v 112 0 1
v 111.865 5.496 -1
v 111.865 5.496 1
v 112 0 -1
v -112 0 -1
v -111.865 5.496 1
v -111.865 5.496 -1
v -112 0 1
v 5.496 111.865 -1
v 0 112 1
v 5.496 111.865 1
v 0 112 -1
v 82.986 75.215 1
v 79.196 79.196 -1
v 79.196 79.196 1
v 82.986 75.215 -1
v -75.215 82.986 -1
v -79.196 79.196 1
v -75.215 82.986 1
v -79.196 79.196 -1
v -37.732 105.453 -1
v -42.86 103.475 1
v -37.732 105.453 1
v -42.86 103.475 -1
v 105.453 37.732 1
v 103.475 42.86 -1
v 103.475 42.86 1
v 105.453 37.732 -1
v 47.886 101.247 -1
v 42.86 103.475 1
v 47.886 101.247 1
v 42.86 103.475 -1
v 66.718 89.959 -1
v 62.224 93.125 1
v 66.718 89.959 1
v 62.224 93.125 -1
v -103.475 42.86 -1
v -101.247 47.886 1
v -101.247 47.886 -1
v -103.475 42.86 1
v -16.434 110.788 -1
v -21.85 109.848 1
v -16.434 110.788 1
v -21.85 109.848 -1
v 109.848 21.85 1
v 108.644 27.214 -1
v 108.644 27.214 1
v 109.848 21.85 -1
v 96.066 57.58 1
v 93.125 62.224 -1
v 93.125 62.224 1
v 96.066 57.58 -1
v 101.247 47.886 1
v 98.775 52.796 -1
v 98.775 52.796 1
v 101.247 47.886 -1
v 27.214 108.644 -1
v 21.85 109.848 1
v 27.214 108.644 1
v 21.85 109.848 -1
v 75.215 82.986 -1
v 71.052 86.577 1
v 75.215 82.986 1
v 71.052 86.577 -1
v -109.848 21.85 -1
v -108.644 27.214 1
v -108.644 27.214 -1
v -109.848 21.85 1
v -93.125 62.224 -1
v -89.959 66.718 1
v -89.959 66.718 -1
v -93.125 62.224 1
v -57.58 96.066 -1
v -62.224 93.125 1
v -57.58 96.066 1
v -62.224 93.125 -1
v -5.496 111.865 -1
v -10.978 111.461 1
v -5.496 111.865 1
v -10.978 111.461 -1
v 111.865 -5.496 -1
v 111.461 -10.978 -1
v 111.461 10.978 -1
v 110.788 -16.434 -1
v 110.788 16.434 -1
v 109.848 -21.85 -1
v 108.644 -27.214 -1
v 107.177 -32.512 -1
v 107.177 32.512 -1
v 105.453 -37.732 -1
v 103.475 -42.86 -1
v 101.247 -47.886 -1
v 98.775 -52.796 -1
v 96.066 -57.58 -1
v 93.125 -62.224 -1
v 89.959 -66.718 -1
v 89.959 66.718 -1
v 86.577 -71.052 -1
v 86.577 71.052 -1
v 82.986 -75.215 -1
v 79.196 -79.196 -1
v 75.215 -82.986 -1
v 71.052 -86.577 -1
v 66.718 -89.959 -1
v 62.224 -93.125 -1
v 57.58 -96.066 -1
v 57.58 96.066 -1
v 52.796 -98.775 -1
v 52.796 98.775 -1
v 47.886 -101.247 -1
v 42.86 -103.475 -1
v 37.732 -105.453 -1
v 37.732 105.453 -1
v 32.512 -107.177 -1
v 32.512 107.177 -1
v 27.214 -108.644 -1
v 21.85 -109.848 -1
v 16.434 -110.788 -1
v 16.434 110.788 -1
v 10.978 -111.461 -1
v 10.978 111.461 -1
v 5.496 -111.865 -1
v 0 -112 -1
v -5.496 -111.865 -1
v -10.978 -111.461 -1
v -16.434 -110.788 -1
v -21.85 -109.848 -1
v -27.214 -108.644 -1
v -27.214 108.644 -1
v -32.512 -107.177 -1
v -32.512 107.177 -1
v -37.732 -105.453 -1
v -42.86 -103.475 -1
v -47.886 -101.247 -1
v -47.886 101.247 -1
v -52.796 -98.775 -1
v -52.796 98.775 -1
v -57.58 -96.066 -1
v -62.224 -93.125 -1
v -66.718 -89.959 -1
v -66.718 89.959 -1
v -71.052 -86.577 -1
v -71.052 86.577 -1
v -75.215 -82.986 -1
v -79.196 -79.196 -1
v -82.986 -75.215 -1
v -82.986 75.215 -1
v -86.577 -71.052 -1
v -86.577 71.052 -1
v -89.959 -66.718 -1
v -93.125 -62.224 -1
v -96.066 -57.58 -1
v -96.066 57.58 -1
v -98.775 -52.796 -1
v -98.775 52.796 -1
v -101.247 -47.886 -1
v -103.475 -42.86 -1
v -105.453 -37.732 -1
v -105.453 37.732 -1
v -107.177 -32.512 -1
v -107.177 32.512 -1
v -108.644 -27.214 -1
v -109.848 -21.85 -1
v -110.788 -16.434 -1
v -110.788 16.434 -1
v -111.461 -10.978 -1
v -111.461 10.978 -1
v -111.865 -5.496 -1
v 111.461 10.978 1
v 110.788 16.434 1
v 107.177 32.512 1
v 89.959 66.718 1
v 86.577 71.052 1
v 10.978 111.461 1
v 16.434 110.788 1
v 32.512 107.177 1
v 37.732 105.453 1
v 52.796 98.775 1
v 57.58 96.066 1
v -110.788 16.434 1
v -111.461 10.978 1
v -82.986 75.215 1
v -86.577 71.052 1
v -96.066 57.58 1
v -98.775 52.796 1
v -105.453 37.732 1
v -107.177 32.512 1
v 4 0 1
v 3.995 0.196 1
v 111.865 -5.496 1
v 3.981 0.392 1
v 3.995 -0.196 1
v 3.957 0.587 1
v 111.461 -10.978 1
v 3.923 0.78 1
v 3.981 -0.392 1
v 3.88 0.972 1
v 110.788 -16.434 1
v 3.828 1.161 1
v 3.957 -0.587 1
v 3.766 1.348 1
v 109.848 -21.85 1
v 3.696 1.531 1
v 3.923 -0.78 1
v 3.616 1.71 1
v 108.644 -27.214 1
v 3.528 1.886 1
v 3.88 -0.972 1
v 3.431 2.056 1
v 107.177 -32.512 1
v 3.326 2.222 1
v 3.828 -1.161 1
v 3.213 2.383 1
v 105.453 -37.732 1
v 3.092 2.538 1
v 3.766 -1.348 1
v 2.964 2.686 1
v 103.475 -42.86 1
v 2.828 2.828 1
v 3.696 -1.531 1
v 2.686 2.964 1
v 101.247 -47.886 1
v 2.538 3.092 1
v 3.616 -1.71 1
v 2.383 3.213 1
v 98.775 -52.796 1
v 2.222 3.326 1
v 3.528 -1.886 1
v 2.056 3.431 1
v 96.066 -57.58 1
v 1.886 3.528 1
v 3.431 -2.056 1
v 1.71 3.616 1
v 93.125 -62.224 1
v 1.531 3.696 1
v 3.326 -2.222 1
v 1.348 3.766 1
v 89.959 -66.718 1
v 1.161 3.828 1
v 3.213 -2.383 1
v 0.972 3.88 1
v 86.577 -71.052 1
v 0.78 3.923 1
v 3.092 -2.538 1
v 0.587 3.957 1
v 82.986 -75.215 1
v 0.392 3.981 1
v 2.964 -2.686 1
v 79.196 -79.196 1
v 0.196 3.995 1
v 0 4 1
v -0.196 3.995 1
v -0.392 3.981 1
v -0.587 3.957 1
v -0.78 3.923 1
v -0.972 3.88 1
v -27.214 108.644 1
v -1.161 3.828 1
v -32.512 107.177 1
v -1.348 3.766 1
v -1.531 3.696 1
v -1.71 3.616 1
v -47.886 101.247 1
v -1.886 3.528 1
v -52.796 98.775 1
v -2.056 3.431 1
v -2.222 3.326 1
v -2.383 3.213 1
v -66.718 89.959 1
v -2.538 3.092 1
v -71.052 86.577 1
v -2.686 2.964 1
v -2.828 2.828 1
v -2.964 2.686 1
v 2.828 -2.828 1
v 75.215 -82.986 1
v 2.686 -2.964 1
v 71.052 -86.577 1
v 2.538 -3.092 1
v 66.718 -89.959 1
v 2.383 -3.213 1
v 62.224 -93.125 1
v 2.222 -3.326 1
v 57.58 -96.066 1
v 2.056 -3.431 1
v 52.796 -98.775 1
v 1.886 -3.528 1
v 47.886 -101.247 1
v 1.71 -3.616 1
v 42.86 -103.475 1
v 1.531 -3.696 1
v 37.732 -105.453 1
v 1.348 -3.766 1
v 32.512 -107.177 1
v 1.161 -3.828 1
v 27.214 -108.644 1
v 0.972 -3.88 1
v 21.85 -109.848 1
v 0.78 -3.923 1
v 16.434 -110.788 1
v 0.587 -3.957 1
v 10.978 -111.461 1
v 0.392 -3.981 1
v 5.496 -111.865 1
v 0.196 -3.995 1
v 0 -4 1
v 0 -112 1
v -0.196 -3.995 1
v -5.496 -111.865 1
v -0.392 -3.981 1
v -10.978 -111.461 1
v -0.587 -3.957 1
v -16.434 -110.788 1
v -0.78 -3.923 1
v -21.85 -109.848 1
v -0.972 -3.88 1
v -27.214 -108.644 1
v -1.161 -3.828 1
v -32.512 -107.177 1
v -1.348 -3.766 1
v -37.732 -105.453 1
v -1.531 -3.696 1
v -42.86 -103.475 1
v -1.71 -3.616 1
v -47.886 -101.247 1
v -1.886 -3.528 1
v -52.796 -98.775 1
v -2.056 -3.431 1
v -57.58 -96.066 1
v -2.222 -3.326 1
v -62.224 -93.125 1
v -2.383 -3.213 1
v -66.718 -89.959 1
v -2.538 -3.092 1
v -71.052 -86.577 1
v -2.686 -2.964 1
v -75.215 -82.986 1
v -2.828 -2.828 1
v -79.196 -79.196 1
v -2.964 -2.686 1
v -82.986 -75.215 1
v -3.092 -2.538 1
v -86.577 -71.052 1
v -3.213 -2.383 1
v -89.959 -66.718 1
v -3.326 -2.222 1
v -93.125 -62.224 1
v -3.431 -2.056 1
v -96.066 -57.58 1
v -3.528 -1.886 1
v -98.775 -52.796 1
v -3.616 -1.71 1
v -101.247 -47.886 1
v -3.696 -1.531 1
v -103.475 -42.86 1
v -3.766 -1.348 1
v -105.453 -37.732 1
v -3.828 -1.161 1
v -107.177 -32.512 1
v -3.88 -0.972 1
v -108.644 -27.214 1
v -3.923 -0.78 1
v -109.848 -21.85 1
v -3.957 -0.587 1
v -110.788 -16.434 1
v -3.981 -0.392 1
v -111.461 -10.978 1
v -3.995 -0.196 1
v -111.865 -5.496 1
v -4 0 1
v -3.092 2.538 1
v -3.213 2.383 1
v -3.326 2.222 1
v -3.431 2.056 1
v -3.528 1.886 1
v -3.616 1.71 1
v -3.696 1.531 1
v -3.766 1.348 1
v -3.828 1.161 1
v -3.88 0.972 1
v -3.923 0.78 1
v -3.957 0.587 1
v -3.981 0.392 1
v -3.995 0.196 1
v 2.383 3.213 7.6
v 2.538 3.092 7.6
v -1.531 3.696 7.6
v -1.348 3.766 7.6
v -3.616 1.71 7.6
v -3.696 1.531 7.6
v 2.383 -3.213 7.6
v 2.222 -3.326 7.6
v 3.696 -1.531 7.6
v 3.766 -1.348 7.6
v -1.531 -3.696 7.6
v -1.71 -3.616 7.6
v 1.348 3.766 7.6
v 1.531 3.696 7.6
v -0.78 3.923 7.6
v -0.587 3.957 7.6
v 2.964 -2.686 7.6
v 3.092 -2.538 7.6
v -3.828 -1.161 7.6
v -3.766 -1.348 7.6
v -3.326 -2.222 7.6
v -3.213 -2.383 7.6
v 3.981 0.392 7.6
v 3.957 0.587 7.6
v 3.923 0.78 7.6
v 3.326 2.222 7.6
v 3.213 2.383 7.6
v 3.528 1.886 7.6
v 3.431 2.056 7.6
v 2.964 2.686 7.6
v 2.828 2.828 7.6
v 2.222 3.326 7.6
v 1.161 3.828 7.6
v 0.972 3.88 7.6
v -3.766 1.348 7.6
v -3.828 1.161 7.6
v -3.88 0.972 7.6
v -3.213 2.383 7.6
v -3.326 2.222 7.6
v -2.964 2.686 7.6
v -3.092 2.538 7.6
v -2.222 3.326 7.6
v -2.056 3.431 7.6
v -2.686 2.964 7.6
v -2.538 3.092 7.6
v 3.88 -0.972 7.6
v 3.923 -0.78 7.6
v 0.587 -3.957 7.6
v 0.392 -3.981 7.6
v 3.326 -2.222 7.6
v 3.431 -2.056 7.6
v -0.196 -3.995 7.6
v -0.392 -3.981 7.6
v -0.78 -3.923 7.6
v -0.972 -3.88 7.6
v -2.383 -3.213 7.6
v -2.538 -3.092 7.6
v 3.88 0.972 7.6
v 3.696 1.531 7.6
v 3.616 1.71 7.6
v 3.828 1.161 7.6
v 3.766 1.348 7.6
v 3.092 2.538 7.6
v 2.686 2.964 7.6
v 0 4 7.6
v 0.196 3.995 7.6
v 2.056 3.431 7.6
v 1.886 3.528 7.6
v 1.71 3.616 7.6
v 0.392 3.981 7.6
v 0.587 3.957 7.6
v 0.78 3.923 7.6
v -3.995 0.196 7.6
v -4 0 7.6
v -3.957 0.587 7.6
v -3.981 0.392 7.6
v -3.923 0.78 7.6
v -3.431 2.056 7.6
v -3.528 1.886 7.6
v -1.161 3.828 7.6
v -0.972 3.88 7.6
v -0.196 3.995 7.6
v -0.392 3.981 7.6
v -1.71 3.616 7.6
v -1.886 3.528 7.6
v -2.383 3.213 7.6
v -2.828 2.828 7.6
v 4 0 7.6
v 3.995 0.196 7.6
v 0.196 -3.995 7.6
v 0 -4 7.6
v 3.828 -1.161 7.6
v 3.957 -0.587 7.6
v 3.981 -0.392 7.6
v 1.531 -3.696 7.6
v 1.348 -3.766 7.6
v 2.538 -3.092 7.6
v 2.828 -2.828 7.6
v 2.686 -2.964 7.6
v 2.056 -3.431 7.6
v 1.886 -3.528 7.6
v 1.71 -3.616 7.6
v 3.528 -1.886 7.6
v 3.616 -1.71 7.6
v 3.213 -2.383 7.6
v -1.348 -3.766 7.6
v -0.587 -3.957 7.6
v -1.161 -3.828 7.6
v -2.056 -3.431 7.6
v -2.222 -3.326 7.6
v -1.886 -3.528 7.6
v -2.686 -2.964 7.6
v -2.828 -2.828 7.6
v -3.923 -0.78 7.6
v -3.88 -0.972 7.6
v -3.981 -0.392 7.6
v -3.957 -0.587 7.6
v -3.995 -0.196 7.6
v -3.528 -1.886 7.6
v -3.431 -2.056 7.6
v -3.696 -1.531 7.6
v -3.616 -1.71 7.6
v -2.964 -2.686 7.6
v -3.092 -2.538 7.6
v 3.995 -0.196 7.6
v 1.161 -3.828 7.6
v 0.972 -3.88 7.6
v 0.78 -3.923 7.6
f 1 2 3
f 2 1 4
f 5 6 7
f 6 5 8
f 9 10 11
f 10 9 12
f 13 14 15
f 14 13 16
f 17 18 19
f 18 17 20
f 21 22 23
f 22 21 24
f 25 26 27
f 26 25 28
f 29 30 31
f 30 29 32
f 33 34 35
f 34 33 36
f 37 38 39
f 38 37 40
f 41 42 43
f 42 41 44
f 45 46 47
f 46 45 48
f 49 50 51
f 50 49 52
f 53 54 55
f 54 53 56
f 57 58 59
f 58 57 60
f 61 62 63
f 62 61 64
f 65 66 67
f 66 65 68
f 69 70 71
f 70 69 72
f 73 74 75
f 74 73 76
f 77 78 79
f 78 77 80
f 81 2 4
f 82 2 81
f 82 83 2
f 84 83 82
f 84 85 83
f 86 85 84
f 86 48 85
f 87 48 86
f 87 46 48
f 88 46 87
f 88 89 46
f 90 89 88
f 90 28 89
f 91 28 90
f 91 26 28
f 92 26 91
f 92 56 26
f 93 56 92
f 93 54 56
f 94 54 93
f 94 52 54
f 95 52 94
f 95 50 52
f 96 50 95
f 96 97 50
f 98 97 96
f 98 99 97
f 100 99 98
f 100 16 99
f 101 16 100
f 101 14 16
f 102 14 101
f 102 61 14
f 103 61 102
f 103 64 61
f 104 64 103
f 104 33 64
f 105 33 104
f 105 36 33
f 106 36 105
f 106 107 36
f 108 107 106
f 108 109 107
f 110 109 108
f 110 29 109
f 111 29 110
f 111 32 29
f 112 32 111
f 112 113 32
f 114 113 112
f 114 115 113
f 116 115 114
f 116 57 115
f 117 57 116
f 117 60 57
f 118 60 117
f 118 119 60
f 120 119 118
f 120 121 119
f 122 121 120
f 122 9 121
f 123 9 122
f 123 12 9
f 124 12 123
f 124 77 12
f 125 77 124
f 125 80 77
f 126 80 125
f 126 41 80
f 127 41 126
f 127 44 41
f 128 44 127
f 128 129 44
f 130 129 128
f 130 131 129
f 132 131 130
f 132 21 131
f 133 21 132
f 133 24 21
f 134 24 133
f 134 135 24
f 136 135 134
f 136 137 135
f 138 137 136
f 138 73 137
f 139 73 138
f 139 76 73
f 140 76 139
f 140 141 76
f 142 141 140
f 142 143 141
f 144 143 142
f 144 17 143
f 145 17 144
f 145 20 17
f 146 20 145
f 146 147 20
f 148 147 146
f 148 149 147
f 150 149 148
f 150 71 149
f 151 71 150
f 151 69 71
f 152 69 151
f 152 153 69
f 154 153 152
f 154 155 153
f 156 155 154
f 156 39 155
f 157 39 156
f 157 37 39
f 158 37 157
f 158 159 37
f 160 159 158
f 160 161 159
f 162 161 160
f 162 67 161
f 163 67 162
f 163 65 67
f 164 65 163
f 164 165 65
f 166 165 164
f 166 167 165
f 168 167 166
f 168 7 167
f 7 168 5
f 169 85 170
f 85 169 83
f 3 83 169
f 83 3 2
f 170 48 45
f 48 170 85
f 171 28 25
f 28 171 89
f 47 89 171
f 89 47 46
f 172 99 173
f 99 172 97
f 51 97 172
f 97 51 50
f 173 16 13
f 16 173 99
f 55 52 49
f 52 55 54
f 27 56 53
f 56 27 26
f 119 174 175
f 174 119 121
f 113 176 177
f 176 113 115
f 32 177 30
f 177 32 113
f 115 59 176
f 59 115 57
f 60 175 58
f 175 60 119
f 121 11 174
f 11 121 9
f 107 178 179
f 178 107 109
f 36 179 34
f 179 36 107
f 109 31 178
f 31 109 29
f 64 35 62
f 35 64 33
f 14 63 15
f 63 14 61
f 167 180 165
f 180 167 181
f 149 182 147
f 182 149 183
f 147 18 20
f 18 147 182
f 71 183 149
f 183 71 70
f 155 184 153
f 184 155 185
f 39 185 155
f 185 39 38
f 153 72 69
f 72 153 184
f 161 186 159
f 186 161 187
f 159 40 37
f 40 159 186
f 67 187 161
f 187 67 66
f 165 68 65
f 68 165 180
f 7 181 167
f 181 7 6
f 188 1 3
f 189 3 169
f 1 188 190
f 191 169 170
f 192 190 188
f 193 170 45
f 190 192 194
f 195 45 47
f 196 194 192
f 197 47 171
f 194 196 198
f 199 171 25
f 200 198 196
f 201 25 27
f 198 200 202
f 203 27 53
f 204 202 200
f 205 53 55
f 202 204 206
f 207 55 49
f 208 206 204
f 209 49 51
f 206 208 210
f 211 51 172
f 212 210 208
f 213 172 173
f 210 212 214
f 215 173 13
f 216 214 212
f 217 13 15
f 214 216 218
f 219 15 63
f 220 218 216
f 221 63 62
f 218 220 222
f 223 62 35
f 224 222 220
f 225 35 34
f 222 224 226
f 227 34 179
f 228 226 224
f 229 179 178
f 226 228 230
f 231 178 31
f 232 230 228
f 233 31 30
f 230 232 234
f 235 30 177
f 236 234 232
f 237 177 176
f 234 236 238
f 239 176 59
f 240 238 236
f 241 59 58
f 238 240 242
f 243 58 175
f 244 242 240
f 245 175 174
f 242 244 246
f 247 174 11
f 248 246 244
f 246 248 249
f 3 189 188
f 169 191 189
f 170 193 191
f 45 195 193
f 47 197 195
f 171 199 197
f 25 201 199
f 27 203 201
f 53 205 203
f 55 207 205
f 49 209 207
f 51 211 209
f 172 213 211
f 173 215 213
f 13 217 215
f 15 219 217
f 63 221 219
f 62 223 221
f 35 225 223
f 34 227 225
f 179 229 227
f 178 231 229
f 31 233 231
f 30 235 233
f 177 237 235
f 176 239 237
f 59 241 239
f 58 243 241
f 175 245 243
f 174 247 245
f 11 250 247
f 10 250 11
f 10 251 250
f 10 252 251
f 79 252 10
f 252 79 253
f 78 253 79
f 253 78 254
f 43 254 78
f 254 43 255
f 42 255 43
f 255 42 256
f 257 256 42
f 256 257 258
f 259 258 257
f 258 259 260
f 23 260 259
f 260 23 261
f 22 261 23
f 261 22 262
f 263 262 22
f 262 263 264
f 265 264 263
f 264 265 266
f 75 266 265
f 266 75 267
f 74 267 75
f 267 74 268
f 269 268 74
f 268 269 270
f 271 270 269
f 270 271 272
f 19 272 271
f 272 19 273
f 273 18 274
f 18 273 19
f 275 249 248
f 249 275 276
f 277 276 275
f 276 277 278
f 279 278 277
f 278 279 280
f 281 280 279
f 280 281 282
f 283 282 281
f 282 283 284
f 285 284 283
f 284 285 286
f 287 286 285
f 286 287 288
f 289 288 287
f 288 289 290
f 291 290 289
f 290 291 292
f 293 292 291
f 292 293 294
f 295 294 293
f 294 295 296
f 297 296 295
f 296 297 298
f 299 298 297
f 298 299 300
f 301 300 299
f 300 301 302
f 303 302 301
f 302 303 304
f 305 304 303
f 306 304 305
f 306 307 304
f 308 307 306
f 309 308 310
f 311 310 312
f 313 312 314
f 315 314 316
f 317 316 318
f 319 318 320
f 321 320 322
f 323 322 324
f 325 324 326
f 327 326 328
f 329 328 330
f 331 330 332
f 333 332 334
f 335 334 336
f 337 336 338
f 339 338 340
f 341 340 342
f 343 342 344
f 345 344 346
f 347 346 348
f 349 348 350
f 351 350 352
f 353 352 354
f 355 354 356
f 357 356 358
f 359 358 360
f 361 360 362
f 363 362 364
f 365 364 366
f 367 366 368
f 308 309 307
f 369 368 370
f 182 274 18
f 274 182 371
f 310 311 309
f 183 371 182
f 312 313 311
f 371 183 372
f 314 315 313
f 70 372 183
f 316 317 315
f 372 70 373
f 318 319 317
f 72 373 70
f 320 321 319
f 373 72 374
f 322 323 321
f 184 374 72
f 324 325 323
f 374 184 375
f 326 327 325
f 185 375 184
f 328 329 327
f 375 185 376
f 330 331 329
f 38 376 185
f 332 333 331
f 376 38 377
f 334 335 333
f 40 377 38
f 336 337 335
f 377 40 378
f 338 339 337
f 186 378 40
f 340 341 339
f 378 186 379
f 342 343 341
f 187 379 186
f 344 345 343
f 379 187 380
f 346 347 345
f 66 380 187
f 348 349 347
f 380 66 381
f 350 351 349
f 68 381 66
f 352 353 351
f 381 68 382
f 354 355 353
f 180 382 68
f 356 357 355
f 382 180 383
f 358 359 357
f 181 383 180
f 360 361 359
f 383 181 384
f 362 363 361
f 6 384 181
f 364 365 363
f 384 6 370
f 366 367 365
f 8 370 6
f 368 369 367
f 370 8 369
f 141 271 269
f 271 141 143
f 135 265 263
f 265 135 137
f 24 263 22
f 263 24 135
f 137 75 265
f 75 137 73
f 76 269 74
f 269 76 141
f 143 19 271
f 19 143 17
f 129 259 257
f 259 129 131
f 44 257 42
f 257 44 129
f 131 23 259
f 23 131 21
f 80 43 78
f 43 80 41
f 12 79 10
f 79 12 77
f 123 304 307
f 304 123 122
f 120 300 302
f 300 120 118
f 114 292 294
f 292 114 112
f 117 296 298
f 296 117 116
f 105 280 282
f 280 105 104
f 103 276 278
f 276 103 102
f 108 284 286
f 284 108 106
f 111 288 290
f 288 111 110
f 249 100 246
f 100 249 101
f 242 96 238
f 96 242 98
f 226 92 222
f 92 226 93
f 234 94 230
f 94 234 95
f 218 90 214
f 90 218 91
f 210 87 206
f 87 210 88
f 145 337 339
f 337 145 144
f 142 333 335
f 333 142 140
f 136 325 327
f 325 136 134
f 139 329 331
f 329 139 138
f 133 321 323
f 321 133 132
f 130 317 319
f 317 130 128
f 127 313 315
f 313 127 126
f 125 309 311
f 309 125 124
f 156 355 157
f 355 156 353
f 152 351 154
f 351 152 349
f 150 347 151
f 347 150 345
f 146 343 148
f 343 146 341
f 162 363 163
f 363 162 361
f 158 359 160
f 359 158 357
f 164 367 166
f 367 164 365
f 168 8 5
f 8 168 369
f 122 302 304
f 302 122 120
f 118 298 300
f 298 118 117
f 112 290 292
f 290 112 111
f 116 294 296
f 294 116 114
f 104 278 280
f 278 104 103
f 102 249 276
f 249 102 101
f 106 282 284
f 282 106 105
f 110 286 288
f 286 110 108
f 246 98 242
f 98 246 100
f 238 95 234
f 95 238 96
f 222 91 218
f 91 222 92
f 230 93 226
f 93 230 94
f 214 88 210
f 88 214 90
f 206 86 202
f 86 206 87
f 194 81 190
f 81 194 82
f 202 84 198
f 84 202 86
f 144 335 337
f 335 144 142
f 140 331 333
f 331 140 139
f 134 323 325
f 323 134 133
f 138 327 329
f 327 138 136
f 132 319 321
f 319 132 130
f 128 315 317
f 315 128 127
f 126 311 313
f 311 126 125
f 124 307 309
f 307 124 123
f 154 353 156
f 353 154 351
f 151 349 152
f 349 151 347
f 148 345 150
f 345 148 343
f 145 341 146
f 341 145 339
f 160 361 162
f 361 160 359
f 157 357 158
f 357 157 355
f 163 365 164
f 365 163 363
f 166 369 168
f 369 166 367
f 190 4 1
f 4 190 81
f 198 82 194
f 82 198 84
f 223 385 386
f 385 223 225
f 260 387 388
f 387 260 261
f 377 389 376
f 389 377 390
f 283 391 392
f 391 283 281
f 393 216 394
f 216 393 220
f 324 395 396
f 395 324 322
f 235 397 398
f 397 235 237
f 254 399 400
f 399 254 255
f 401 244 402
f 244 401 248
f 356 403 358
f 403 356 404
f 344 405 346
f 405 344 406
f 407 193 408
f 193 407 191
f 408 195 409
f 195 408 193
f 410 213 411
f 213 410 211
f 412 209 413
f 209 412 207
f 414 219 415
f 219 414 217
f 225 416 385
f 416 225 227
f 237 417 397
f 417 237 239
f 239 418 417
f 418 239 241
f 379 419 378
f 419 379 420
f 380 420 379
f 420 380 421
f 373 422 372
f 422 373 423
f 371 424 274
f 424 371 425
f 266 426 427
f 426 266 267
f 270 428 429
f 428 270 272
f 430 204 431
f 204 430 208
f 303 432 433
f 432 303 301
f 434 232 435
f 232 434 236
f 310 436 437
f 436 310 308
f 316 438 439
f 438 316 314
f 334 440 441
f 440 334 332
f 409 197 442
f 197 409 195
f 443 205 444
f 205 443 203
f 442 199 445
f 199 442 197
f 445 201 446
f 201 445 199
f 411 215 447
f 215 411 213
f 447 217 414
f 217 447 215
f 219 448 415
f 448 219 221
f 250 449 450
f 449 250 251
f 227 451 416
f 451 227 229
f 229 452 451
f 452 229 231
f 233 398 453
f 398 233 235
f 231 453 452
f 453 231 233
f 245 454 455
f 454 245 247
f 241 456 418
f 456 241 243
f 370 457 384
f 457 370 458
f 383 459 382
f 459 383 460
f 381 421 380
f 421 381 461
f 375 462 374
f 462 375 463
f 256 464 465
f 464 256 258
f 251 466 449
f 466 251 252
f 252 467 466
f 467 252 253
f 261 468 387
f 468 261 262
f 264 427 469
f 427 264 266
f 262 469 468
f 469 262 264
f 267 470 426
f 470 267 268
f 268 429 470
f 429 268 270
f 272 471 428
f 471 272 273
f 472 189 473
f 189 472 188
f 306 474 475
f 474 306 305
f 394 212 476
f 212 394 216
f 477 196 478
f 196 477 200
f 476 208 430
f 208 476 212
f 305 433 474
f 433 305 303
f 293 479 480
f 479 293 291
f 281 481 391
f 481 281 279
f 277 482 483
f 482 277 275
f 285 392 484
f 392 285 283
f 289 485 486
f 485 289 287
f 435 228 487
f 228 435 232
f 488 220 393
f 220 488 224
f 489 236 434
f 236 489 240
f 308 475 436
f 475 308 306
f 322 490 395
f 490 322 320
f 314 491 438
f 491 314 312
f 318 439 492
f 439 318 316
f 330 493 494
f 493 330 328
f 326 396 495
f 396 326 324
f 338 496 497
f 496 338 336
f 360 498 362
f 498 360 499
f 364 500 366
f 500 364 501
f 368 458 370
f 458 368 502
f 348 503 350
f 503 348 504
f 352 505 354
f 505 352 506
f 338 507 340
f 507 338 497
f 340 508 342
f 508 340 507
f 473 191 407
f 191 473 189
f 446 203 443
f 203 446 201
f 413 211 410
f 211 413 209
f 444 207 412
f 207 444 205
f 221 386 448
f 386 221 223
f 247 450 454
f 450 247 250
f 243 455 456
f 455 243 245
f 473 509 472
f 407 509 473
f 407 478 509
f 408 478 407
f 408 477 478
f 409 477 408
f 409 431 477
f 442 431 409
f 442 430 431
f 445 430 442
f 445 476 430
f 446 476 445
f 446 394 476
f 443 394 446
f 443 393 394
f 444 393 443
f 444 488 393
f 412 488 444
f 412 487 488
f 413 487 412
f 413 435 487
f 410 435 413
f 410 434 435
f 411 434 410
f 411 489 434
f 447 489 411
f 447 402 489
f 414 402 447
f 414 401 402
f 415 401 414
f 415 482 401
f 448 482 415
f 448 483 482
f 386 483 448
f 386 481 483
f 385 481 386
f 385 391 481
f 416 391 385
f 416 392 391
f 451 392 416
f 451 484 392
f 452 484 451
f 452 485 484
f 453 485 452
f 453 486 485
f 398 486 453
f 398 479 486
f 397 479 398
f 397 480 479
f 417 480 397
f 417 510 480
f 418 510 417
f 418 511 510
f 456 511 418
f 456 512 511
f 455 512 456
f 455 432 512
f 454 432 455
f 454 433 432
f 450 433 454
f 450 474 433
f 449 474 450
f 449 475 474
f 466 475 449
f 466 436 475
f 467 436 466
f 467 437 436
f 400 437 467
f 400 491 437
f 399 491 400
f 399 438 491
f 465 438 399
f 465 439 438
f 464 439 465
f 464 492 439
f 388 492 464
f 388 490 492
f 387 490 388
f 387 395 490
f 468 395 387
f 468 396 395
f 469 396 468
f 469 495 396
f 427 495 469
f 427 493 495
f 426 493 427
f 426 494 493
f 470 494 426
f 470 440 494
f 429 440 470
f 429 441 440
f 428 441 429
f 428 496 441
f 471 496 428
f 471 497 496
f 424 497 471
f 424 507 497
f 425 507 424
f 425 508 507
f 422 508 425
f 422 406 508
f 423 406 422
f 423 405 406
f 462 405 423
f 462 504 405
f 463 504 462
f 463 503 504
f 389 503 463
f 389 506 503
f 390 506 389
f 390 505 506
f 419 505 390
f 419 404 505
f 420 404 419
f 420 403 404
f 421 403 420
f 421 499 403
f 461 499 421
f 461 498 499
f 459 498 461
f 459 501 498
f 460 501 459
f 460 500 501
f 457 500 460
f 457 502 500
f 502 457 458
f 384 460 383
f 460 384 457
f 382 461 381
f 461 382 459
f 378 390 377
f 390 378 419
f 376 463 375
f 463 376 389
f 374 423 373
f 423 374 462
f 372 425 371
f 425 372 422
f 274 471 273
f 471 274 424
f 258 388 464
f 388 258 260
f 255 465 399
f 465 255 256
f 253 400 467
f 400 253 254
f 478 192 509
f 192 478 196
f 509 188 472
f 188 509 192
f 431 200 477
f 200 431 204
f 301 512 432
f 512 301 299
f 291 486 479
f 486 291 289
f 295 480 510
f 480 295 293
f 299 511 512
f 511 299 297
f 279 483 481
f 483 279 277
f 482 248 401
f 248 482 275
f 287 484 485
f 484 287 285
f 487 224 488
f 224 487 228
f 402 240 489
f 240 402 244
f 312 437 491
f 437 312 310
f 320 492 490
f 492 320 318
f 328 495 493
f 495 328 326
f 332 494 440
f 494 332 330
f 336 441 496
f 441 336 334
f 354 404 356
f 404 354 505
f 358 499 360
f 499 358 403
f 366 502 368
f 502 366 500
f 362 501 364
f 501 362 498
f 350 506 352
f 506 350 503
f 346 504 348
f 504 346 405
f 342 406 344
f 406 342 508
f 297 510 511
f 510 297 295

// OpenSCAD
$fn = $preview ? 32 : 128;

// Parameters
tolerance = 0.2;
diameter = 224;
thickness = 2;
bearingInnerDiameter = 8;
bearingOuterDiameter = 22;
bearingHeight = 7 - (tolerance * 2);

cylinder(d=diameter, h=thickness, center=true);
translate([0, 0, (bearingHeight + thickness) / 2]) {
    cylinder(d=bearingInnerDiameter, h=(bearingHeight), center=true);
}
